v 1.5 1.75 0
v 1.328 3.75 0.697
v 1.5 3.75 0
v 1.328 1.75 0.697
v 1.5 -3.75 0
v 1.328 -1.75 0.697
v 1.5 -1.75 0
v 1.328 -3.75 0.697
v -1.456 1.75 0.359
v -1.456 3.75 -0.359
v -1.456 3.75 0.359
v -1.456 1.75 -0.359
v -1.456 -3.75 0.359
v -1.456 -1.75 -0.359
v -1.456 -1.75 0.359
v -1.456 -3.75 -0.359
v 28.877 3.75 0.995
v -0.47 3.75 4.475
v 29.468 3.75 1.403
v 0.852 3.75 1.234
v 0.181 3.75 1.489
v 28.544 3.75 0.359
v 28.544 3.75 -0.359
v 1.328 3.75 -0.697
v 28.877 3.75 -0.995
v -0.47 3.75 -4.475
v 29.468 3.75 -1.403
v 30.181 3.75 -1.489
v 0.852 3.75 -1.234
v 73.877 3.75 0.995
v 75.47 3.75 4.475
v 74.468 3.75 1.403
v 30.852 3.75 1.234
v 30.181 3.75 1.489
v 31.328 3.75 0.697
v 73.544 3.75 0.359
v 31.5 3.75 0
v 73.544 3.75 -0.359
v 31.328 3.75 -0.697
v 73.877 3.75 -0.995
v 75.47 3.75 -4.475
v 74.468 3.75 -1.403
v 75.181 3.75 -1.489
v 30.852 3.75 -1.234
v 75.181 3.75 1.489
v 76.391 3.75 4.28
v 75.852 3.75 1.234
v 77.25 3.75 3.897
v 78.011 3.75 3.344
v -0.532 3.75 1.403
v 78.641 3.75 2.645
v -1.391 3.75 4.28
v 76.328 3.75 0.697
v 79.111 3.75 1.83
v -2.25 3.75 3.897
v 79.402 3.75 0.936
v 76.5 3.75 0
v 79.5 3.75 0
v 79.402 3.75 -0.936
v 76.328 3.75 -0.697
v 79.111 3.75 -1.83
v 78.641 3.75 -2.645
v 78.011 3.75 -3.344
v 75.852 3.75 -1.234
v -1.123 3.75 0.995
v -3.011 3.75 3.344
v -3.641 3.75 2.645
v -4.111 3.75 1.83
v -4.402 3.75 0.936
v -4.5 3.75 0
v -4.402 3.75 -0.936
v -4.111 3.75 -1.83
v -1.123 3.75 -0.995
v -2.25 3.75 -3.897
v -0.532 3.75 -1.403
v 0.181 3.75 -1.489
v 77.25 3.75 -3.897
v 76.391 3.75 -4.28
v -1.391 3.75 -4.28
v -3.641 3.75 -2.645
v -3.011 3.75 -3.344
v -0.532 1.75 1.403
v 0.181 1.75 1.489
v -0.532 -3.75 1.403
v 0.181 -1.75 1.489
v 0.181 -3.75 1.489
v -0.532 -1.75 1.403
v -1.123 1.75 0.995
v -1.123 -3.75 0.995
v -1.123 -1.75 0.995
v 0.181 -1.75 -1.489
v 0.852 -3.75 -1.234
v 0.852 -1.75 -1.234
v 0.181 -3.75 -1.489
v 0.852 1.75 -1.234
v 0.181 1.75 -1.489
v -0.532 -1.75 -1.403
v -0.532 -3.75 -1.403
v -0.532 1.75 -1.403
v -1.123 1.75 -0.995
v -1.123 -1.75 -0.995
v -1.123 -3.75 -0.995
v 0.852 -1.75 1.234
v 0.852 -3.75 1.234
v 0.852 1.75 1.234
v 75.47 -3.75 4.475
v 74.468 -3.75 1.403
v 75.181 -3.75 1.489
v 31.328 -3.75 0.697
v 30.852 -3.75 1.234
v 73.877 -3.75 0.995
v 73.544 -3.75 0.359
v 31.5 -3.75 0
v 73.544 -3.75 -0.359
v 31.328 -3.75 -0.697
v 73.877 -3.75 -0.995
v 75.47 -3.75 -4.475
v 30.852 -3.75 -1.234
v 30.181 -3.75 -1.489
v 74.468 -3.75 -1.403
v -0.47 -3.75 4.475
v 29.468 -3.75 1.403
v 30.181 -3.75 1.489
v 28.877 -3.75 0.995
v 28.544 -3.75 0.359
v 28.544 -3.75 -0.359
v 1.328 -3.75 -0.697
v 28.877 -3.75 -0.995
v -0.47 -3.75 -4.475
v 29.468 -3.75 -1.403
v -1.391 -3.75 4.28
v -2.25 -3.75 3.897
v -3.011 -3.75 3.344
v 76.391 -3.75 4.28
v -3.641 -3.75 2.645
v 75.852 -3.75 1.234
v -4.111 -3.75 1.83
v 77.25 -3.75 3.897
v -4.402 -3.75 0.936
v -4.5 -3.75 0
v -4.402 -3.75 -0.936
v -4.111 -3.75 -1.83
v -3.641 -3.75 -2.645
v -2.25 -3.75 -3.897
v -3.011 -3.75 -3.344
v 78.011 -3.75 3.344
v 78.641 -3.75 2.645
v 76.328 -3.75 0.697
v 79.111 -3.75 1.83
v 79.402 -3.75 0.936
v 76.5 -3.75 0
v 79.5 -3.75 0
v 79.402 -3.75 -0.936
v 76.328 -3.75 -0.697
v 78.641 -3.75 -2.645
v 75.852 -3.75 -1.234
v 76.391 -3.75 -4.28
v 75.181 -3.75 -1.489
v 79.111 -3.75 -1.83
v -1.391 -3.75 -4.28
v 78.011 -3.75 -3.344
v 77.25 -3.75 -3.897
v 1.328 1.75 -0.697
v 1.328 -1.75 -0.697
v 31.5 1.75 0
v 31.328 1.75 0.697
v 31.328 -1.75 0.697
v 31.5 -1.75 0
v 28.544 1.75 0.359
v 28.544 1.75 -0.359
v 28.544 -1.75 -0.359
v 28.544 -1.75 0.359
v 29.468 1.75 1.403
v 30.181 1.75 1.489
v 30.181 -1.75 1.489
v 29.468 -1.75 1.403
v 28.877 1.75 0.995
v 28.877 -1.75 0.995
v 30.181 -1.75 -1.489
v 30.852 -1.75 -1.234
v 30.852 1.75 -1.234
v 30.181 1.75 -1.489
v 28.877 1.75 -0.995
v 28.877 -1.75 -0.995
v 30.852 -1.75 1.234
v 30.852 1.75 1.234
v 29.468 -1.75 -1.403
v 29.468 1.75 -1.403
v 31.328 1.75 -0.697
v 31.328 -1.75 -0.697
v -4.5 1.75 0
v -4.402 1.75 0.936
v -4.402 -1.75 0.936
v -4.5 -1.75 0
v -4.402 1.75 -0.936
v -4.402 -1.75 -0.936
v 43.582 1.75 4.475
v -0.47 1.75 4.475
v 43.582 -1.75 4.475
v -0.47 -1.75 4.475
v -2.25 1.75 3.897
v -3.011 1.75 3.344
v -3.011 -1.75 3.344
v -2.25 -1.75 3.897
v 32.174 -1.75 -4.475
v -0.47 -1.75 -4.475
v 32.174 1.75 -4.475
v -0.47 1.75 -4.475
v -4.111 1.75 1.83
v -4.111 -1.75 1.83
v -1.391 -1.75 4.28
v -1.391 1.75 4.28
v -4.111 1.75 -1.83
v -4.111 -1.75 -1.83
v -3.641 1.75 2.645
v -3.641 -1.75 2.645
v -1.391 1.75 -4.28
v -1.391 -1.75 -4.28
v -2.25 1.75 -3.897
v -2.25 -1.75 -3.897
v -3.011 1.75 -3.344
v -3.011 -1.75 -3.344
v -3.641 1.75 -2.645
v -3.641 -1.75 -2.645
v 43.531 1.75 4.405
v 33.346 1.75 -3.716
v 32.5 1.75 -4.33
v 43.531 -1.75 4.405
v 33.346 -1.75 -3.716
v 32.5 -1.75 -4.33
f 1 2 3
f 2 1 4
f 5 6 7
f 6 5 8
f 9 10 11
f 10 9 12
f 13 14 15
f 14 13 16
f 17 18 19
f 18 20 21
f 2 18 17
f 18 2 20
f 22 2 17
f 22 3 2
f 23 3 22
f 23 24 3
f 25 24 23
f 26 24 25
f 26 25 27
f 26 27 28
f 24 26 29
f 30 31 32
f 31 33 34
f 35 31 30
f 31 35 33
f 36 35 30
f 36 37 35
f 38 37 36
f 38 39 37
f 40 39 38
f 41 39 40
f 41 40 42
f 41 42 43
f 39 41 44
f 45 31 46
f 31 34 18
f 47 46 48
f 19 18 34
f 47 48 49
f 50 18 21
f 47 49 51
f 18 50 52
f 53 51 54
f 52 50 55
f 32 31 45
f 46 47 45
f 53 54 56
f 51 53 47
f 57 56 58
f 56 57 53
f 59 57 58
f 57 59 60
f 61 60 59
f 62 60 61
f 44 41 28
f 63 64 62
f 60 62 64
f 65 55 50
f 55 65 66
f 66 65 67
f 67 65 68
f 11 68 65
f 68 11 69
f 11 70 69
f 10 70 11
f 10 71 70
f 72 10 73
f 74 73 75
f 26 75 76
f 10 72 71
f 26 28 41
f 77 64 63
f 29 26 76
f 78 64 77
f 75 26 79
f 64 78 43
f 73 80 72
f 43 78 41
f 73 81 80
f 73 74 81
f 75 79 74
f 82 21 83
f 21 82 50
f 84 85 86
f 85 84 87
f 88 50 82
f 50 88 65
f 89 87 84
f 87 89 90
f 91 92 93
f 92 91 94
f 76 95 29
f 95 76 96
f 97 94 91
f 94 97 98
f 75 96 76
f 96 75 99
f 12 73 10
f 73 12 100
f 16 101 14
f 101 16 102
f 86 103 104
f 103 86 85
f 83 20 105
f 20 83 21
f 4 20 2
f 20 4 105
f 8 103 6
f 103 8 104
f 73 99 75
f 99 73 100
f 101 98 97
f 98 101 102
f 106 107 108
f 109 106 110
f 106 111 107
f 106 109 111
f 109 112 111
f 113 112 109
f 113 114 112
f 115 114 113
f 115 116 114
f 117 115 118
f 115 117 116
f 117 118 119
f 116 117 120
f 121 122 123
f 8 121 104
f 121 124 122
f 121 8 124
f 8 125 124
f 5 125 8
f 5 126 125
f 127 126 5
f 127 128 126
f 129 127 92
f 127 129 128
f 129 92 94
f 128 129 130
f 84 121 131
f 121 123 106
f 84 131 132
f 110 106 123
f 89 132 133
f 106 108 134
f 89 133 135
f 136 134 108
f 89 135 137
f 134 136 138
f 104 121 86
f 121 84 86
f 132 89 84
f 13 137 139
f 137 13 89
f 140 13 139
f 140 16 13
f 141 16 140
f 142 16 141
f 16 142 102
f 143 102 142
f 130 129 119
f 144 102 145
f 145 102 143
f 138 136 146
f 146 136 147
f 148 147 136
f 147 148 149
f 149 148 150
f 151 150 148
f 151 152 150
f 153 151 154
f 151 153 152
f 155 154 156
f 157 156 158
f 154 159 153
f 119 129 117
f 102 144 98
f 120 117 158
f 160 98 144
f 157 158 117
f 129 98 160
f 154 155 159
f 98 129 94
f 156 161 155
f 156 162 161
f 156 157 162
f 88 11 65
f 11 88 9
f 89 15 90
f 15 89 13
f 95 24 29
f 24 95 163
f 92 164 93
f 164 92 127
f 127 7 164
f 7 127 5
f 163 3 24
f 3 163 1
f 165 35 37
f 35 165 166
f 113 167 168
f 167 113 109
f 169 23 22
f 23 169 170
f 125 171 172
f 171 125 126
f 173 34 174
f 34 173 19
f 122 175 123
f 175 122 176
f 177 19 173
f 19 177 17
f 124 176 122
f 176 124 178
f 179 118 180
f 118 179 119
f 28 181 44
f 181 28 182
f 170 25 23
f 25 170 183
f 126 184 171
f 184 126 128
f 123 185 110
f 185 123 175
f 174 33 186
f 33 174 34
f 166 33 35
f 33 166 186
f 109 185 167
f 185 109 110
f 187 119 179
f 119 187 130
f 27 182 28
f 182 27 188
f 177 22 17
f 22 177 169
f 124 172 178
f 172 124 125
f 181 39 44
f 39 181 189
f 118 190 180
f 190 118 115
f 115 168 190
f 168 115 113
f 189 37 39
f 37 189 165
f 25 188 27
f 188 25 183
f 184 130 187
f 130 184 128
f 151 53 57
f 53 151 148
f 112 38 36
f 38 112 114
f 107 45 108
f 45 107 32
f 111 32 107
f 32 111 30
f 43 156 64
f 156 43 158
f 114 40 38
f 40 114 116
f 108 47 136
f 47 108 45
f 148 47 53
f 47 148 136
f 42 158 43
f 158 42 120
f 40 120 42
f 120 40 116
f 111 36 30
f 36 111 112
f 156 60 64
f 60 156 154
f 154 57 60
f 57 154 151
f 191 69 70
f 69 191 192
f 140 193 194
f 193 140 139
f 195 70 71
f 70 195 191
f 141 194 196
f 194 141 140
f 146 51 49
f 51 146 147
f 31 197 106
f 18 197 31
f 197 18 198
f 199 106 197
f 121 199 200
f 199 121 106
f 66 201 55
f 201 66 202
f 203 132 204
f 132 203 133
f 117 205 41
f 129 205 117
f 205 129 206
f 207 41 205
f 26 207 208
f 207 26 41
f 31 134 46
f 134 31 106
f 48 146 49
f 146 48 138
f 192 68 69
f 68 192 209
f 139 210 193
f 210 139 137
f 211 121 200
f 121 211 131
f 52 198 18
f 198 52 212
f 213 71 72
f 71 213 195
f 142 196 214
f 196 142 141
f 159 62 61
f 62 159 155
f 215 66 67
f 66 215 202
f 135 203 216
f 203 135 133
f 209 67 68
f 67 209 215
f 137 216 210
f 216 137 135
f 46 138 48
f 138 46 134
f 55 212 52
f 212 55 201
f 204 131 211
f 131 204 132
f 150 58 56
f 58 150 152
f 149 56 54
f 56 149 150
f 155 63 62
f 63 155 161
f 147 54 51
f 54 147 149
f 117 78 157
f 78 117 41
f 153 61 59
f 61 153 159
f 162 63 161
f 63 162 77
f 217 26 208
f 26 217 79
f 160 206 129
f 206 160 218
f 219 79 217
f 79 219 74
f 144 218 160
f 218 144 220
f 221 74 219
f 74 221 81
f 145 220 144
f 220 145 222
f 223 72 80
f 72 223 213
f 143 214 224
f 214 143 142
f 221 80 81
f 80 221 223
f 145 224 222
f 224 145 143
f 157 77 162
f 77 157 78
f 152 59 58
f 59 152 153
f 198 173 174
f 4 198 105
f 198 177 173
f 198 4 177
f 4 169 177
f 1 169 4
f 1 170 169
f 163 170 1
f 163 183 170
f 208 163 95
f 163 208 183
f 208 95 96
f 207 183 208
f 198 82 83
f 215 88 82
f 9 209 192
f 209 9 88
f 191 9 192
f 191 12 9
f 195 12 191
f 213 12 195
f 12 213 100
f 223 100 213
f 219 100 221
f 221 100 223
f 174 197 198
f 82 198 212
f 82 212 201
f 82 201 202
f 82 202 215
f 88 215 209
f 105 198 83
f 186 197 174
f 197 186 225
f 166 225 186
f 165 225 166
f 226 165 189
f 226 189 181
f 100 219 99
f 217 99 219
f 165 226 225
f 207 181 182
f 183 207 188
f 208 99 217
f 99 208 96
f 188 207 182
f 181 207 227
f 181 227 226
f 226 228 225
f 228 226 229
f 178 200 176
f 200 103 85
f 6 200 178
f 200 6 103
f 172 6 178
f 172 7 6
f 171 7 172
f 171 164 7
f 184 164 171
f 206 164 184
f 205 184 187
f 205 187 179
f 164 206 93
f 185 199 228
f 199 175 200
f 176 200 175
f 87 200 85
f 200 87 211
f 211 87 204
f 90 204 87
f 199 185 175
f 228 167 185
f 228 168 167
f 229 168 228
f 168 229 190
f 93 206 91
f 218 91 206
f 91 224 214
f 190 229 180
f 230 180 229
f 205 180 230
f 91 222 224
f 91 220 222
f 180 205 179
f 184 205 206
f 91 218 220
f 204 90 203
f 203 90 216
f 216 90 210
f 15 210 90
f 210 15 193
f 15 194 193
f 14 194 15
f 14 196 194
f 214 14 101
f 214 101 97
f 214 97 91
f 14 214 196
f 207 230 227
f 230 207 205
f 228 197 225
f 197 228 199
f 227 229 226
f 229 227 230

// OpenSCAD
$fs=.75;

rotate(a = [90, 0, 0]) {
	difference() {
		hull() {
			translate(v = [-0.0000000000, -0.0000000000, -3.7500000000]) {
				cylinder(h = 7.5000000000, r = 4.5000000000);
			}
			translate(v = [75, 0, 0]) {
				translate(v = [-0.0000000000, -0.0000000000, -3.7500000000]) {
					cylinder(h = 7.5000000000, r = 4.5000000000);
				}
			}
		}
		union() {
			translate(v = [0, 0, -3.7500000000]) {
				cylinder(d = 3, h = 7.5000000000);
			}
			translate(v = [30, 0, 0]) {
				translate(v = [0, 0, -3.7500000000]) {
					cylinder(d = 3, h = 7.5000000000);
				}
			}
			translate(v = [75, 0, 0]) {
				translate(v = [0, 0, -3.7500000000]) {
					cylinder(d = 3, h = 7.5000000000);
				}
			}
		}
		hull() {
			translate(v = [-0.0000000000, -0.0000000000, -1.7500000000]) {
				cylinder(h = 3.5000000000, r = 5.0000000000);
			}
			translate(v = [30, 0, 0]) {
				translate(v = [-0.0000000000, -0.0000000000, -1.7500000000]) {
					cylinder(h = 3.5000000000, r = 5.0000000000);
				}
			}
			translate(v = [43.5000000000, 4.5000000000, 0]) {
				translate(v = [-0.0000000000, -0.0000000000, -1.7500000000]) {
					cylinder(h = 3.5000000000, r = 0.1000000000);
				}
			}
		}
	}
}
/***********************************************
*********      SolidPython code:      **********
************************************************
 
from solid import *
from solid import extensions
from math import *

class Object:
    pass

thkOut = 2
thkIn = 3
play = .5
thk = 2*thkOut+thkIn+play
length = 75
shortLink = 30
screwD = 3
rLink = screwD/2.+3

screwHoles = cylinder(d=screwD, h=thk).center()+cylinder(d=screwD,h=thk).center().move(x=shortLink)+cylinder(d=screwD,h=thk).center().move(x=length)
baseBody = hull(cylinder(r=rLink, h=thk).center(),cylinder(r=rLink,h=thk).center().move(x=length))
hornSpace = hull(cylinder(rLink+play,h=thkIn+play).center(), cylinder(rLink+play,h=thkIn+play).center().move(x=shortLink), cylinder(0.1,h=thkIn+play).center().move(x=shortLink+3*rLink,y=rLink))

scene = ( baseBody 
	    - screwHoles 
	    - hornSpace).rot(x=90)

scad_render_to_file(scene, 'preview.scad', '$fs=.75;') 
 
************************************************/
